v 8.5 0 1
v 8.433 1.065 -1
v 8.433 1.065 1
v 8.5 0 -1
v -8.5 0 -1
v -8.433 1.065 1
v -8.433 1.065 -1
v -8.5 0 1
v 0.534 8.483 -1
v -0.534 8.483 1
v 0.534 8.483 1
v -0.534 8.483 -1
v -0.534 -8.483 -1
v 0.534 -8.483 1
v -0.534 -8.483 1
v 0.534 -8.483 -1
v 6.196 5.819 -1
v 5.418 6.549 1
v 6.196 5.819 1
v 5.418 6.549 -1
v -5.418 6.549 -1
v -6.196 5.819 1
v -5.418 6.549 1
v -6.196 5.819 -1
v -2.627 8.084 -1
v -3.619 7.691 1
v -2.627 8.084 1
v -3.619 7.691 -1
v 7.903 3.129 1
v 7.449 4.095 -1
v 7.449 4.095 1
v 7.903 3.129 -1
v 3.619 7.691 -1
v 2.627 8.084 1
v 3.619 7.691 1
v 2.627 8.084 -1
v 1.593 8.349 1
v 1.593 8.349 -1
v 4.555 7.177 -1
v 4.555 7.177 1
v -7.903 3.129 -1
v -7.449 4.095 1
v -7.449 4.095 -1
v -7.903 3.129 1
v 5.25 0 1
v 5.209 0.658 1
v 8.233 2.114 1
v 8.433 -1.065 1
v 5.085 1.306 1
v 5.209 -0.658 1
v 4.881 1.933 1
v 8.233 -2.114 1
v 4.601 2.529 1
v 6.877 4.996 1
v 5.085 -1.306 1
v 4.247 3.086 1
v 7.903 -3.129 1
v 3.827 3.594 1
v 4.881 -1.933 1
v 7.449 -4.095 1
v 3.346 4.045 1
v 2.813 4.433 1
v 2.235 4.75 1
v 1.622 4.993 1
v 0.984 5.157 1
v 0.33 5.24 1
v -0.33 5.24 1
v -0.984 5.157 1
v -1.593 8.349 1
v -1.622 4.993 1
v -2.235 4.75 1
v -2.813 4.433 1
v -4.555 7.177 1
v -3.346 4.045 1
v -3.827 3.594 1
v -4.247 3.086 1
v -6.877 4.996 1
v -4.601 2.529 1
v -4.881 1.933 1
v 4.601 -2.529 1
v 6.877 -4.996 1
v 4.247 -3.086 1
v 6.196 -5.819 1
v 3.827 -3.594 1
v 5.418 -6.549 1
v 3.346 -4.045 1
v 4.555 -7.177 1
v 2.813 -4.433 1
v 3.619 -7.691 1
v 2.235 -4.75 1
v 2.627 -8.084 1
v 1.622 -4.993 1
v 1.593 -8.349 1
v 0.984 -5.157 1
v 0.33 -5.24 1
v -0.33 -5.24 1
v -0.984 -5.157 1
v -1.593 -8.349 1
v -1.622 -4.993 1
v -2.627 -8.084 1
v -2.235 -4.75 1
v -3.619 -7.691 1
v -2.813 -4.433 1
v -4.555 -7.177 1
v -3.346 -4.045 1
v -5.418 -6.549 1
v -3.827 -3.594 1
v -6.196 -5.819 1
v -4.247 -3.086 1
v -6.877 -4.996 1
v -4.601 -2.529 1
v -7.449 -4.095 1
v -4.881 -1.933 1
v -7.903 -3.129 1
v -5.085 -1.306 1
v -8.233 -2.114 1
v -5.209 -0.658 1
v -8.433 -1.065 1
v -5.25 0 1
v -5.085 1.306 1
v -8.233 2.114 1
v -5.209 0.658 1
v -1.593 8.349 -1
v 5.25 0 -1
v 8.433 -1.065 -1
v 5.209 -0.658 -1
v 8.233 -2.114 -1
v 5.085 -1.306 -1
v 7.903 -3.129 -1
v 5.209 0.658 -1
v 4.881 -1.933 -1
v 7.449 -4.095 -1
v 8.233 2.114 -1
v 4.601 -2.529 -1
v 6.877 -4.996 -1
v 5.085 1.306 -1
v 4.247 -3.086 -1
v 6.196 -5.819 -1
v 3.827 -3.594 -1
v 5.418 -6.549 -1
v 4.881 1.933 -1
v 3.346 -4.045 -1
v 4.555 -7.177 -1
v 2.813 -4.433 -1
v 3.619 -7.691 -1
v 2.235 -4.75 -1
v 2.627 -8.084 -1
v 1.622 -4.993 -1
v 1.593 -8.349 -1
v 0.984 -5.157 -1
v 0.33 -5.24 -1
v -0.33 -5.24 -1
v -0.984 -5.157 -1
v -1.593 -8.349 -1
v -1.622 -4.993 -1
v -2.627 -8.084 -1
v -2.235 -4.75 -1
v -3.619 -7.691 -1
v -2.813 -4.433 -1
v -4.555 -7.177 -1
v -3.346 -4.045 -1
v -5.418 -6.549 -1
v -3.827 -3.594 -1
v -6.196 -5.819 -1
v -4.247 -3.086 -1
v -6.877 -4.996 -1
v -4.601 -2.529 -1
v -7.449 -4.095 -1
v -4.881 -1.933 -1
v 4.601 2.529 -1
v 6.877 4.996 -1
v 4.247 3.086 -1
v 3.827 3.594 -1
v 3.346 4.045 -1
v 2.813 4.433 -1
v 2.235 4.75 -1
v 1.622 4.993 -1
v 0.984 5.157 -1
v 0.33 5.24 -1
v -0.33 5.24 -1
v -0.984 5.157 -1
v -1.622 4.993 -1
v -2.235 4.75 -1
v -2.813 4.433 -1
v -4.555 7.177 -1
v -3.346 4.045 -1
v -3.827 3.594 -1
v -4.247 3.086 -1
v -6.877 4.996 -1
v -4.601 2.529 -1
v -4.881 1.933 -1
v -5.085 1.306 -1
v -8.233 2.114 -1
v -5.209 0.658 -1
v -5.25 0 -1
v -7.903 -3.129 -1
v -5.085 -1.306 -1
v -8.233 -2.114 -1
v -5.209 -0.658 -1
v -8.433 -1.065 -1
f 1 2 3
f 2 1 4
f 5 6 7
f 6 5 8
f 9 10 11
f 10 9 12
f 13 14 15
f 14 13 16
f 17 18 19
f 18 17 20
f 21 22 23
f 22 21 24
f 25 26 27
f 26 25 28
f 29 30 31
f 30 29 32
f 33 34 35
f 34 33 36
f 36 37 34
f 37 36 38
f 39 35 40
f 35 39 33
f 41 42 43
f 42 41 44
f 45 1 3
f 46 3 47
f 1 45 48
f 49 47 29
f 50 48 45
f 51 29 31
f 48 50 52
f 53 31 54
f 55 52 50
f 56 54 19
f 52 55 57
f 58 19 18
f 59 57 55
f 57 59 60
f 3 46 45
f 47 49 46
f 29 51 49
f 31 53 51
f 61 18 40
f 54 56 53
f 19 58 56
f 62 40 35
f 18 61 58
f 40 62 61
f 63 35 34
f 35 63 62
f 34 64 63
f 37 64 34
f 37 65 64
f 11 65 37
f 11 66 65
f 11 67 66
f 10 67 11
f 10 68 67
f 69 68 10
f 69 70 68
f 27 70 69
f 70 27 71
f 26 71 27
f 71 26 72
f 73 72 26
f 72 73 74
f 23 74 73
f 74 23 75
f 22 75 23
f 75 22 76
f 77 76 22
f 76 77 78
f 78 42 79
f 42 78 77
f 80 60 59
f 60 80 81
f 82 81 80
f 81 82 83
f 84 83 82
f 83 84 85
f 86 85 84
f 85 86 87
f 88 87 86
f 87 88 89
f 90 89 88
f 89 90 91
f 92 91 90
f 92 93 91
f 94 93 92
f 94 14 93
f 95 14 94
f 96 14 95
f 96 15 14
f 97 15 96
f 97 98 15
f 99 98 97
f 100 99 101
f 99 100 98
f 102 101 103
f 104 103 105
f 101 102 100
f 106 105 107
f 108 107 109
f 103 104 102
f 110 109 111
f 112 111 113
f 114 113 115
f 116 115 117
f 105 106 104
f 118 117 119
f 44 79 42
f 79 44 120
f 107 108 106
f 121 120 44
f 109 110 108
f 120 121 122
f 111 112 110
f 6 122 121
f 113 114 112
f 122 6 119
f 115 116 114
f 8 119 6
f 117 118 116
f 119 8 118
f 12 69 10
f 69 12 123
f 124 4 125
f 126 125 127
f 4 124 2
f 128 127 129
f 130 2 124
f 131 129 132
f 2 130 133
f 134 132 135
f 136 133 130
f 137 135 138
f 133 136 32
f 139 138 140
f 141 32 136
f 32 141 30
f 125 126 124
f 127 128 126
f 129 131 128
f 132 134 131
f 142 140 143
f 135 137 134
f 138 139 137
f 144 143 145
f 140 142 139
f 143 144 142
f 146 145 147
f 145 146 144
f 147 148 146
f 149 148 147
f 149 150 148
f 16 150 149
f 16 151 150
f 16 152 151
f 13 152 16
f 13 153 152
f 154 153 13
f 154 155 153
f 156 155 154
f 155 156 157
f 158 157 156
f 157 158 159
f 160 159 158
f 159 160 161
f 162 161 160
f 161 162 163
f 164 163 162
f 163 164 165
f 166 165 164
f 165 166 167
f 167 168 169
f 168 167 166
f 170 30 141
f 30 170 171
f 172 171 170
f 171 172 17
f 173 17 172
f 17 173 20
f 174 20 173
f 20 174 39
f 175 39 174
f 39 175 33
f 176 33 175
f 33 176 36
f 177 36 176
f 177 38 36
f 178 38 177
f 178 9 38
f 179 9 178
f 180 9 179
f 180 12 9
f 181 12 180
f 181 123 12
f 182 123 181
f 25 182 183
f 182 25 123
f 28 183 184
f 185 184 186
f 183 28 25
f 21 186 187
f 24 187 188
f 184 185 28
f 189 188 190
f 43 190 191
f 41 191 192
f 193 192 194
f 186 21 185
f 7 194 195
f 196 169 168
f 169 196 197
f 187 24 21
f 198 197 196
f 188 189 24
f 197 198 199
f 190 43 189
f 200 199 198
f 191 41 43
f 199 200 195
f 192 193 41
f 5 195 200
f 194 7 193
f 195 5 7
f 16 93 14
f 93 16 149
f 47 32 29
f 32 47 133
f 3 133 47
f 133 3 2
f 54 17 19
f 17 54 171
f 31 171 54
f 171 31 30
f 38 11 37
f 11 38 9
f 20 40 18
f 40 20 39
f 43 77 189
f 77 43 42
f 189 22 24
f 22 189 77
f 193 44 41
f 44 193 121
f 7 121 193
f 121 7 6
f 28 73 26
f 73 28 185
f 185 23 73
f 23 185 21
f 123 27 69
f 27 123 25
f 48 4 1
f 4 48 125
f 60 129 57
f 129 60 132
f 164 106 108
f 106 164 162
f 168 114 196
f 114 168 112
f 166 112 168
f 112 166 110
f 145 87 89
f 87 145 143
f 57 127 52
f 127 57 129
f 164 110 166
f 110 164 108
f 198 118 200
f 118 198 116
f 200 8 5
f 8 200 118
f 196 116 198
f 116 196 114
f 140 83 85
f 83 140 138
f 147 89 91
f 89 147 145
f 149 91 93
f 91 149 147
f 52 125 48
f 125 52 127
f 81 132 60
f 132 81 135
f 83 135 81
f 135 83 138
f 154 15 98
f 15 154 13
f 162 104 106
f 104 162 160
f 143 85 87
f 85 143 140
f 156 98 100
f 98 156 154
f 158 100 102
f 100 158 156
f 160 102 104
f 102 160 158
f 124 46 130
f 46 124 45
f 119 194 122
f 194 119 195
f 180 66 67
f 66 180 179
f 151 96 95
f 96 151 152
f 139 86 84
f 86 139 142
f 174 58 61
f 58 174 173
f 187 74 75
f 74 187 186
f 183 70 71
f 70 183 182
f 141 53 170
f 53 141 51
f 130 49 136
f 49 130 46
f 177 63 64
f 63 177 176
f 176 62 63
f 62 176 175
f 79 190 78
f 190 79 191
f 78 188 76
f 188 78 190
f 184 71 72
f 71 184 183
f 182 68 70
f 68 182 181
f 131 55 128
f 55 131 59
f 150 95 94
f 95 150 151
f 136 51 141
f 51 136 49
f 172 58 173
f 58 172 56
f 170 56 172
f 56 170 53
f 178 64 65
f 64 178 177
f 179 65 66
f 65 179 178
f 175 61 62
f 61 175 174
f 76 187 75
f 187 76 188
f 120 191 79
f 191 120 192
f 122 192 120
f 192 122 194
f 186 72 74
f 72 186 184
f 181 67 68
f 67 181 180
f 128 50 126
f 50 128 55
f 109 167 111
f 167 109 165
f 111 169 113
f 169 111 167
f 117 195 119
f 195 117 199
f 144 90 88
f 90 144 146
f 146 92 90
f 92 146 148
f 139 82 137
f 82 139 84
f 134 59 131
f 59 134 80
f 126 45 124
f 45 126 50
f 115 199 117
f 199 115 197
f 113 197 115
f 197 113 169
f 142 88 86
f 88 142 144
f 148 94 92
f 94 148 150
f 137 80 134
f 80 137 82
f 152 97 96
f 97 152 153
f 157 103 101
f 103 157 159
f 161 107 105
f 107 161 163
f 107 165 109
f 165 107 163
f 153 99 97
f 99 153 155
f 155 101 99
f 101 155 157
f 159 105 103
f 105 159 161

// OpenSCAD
$fn = 50;


difference() {
	union() {
		translate(v = [0, 0, -1.0000000000]) {
			cylinder(h = 2, r = 8.5000000000);
		}
	}
	union() {
		translate(v = [0, 0, -100.0000000000]) {
			cylinder(h = 200, r = 5.2500000000);
		}
	}
}
